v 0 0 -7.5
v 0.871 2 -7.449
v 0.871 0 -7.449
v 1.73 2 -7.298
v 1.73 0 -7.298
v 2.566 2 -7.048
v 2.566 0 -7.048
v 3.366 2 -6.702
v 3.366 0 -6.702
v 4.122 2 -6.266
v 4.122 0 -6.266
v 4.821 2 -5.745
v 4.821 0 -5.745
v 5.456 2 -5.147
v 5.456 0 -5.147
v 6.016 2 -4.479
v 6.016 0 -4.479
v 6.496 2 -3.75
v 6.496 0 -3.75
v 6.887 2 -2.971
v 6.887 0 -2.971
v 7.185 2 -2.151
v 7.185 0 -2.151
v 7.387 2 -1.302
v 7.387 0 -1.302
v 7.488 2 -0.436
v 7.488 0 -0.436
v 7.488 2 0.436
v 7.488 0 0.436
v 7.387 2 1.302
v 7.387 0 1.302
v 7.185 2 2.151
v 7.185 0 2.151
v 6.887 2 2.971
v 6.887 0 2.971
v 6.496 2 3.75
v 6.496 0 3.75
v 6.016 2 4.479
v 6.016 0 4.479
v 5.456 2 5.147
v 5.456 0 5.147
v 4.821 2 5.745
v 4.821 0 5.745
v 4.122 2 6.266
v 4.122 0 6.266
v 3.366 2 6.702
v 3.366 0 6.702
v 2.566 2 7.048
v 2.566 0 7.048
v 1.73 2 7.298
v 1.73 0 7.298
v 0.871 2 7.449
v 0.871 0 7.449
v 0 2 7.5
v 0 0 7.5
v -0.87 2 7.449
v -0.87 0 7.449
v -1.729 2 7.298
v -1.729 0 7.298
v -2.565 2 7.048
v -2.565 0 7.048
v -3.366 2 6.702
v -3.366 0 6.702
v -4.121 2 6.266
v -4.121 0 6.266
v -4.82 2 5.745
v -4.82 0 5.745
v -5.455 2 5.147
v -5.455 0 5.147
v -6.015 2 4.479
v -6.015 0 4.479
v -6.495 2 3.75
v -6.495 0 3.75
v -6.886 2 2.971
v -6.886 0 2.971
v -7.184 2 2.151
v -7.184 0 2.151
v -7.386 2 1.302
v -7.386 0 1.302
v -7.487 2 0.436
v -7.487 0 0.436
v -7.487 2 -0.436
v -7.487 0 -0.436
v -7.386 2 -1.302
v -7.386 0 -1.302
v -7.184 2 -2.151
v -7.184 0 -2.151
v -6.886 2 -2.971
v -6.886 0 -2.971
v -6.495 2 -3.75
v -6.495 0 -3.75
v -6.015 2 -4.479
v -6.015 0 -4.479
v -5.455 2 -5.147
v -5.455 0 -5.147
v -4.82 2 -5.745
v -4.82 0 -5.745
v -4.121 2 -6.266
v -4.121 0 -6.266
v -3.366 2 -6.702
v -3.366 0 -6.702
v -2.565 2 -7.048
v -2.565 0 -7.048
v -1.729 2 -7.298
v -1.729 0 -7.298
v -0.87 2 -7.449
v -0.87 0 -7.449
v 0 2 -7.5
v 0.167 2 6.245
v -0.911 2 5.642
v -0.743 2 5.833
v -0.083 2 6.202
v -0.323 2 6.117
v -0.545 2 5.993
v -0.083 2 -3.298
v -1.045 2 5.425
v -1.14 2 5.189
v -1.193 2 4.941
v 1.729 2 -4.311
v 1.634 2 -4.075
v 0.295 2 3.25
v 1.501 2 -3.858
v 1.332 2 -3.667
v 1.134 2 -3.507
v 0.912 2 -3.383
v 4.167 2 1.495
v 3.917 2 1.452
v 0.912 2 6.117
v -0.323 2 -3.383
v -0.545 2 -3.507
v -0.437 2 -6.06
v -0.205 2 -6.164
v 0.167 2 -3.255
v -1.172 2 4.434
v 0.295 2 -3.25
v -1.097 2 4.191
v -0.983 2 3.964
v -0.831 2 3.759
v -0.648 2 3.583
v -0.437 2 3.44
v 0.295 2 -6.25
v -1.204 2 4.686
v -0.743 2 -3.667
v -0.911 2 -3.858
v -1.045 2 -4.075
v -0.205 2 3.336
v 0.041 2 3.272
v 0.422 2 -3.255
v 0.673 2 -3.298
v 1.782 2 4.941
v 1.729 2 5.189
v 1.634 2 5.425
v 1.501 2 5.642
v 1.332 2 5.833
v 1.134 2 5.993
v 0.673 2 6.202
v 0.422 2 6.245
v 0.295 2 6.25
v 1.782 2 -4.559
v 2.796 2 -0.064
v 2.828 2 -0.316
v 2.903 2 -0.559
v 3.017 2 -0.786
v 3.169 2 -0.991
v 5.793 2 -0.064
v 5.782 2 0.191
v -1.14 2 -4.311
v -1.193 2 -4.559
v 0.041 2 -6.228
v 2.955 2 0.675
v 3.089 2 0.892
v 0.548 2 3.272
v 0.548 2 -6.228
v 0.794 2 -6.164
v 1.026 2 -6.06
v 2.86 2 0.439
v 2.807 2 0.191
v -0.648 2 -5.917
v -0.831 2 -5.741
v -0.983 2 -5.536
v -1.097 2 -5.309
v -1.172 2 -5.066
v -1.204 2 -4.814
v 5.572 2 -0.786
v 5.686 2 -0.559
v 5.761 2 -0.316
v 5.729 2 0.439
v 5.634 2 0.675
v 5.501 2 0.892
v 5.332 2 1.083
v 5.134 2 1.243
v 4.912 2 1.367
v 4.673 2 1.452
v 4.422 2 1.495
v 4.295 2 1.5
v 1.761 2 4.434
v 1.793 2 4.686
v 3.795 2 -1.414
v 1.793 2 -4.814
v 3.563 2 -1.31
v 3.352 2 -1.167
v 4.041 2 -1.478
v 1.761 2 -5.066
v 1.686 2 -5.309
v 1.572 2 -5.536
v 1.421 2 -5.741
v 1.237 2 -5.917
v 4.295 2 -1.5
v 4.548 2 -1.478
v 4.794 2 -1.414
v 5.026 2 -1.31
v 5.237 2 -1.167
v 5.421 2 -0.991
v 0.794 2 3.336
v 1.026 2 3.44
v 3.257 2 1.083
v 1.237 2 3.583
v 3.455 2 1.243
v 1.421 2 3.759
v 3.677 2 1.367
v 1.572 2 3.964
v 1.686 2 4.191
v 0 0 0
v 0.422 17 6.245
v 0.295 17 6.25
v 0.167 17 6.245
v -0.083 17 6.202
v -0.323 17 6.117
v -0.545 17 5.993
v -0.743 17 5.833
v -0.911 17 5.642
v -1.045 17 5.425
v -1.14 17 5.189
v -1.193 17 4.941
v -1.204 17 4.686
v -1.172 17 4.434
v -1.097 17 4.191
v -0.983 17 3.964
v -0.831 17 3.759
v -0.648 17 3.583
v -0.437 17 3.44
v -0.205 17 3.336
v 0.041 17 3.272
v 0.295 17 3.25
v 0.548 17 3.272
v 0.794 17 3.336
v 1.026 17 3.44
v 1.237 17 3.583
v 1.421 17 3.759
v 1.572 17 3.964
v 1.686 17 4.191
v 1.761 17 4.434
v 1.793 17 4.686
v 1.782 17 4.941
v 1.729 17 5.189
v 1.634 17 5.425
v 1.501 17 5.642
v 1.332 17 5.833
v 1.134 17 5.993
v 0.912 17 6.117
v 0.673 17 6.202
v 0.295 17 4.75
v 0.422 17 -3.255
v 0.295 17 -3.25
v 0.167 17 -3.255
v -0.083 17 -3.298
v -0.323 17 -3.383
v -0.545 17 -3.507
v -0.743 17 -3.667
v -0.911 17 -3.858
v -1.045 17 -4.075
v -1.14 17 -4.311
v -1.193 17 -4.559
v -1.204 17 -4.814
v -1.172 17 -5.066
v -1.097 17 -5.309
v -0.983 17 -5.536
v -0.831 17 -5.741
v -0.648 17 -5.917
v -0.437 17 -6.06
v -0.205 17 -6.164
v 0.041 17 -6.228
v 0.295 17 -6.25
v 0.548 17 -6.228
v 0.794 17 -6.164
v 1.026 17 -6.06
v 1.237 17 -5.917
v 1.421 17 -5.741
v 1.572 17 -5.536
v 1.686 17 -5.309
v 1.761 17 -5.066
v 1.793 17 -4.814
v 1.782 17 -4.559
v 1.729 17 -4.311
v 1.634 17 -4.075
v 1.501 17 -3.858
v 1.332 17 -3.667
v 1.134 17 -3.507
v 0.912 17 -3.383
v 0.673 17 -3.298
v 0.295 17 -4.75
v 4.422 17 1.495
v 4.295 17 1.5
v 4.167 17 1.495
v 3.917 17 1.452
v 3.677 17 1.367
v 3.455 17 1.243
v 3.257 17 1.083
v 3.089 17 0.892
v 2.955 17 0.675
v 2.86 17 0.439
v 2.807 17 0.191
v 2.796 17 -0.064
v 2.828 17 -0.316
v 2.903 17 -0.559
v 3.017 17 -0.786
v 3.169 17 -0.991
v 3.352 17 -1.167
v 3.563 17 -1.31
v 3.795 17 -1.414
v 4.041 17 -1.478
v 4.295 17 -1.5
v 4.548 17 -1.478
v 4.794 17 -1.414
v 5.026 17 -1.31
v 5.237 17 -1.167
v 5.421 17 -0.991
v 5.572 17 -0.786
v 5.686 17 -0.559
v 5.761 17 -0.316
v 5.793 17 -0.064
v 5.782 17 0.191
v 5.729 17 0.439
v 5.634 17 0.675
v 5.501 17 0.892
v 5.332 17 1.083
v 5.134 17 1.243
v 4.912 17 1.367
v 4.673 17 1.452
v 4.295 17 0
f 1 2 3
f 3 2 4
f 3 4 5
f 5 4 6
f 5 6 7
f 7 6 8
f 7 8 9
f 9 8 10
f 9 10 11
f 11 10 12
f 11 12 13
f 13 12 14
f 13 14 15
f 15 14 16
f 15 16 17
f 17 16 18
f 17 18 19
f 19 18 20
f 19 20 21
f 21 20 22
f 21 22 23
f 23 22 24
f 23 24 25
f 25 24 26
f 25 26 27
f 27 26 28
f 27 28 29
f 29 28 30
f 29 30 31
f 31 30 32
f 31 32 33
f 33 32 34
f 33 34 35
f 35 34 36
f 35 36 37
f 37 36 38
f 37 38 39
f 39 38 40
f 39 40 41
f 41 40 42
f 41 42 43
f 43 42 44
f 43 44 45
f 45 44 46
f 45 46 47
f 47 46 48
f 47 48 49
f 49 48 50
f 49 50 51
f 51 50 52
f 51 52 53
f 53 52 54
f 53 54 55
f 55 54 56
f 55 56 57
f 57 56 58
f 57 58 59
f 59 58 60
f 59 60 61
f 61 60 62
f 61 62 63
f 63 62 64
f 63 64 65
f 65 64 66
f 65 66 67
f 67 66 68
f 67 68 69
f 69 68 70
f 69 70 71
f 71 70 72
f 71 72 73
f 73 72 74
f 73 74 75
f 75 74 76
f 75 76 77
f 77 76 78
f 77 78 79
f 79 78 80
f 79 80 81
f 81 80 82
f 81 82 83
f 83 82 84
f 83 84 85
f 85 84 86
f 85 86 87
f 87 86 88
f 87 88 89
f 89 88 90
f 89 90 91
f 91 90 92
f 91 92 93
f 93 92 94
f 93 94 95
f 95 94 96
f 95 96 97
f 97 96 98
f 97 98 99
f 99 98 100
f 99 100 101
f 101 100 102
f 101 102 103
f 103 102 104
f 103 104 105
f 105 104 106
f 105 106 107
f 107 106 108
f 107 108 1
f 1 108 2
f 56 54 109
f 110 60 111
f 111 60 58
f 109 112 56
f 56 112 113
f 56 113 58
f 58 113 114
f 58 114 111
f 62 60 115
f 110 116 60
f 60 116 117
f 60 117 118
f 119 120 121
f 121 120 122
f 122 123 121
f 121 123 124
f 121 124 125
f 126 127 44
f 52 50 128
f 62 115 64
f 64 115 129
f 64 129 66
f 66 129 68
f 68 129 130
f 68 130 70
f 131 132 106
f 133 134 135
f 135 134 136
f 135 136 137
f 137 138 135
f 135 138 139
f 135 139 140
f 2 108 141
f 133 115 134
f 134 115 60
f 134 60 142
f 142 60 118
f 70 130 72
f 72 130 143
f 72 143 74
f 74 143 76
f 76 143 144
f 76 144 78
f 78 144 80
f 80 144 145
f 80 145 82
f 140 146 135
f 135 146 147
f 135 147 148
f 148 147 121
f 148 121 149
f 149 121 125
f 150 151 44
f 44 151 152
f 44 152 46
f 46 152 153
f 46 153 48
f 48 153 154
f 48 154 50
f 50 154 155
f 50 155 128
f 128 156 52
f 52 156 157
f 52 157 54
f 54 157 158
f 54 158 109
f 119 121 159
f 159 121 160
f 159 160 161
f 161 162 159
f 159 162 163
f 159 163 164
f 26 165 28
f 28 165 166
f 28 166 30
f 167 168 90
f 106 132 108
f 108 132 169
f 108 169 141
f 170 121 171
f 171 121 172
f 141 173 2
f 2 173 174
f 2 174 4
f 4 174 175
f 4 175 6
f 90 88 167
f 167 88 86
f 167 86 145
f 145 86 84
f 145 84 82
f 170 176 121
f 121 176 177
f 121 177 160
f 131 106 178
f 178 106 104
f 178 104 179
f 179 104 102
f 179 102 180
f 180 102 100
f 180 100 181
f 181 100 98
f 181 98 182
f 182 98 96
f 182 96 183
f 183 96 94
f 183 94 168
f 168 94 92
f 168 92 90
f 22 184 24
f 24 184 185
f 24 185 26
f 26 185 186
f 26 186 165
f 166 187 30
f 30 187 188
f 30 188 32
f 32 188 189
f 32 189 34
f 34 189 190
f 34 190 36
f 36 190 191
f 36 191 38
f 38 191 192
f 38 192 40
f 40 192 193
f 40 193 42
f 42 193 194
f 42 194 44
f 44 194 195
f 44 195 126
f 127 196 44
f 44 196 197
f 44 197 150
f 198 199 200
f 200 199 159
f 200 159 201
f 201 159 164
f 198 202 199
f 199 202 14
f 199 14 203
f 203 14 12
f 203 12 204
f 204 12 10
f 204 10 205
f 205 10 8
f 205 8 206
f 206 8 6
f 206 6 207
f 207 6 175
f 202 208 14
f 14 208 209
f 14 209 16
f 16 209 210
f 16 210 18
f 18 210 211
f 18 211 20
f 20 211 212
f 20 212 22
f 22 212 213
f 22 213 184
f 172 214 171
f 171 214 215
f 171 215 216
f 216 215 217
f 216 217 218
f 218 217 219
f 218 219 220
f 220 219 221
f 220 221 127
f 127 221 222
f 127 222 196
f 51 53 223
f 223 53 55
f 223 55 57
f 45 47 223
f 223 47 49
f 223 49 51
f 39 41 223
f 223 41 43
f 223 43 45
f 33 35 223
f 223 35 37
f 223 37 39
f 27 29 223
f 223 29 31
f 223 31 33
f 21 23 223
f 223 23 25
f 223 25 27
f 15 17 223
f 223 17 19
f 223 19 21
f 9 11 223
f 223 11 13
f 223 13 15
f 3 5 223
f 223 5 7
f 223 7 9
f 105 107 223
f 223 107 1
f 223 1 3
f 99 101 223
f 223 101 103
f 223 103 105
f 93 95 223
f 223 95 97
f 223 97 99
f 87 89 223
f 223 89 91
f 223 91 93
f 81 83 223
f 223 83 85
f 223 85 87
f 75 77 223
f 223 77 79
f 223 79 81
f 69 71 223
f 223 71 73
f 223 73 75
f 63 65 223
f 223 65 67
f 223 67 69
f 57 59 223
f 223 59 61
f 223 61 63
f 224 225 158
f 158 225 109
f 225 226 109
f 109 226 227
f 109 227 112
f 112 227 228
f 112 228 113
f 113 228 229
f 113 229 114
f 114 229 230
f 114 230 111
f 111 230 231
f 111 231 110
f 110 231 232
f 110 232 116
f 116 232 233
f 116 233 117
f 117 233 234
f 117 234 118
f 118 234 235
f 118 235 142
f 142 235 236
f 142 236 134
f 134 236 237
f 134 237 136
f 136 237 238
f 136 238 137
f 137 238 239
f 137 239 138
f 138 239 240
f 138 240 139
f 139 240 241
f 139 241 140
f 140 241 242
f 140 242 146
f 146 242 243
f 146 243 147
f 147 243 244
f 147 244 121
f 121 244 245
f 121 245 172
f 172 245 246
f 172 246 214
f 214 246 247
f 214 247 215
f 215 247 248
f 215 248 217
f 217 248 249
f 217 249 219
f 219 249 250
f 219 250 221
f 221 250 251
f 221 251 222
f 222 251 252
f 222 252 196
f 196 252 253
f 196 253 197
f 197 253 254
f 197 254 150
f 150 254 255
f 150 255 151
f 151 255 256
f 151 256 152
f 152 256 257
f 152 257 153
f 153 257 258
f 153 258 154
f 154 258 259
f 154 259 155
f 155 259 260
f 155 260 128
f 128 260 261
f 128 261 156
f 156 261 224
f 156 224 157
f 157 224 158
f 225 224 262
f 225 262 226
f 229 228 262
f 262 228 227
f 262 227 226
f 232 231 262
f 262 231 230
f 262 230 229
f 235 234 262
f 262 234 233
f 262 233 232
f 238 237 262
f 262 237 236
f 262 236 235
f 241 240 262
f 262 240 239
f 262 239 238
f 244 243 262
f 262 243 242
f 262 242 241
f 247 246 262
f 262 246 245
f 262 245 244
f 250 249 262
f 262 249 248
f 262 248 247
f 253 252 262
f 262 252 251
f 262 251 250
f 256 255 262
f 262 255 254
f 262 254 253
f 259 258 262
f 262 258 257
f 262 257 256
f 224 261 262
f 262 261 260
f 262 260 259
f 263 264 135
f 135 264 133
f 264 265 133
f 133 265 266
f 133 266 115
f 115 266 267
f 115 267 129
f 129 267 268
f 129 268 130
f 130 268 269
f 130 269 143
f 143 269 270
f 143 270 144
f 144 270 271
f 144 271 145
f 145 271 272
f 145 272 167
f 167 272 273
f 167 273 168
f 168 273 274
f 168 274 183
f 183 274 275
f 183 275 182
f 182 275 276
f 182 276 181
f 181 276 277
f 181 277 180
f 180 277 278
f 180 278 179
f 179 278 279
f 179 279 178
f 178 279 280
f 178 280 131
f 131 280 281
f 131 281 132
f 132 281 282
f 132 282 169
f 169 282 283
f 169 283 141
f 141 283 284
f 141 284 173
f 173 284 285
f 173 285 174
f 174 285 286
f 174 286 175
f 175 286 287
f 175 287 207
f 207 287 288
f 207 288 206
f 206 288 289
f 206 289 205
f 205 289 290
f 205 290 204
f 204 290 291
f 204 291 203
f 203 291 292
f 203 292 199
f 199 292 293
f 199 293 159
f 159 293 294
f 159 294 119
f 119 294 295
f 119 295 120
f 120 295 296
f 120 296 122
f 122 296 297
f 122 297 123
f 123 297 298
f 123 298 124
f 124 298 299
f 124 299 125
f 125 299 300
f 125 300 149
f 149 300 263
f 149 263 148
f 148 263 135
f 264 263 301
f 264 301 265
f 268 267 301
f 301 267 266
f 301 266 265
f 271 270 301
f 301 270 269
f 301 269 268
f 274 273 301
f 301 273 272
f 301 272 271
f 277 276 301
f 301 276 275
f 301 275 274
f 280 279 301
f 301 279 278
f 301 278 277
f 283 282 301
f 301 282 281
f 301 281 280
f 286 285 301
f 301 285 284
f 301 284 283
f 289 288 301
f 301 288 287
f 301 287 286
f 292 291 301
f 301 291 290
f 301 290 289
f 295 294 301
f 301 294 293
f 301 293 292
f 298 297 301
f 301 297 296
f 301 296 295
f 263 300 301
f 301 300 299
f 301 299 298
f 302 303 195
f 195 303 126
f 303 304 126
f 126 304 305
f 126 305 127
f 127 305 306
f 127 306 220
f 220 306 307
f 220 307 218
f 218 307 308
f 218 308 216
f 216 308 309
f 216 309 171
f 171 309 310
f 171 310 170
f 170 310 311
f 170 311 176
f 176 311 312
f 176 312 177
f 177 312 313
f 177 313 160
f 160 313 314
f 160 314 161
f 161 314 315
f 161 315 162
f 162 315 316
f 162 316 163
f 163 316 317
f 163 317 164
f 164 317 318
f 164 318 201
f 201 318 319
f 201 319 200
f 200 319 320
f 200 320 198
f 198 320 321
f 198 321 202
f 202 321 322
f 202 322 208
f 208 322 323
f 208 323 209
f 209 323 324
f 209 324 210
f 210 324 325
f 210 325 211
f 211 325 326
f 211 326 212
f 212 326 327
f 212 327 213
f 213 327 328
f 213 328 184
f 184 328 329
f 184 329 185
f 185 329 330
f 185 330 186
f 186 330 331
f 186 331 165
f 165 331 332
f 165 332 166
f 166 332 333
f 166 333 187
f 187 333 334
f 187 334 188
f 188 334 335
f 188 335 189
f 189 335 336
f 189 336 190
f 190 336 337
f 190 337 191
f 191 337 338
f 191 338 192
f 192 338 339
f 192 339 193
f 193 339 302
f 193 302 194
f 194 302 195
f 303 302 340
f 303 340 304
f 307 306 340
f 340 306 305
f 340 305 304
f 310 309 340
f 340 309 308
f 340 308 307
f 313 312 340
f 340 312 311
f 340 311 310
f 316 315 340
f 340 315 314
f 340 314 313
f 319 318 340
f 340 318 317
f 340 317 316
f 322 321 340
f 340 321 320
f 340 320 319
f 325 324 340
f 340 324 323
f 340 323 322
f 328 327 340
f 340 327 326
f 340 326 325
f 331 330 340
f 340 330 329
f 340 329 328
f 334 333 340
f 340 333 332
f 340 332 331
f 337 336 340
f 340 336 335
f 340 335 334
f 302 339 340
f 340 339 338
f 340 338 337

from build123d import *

# Parameters (mm, degrees)
SKETCH1_R           = 7.5
BOSS_EXTRUDE1_DEPTH = 2
SKETCH2_R           = 1.5
BOSS_EXTRUDE2_DEPTH = 15


with BuildPart() as part:
    # Sketch1 → Boss-Extrude1 (new body)
    with BuildSketch(Plane(origin=(0, 0, 0), x_dir=(1, 0, 0), z_dir=(0, 1, 0))):
        Circle(SKETCH1_R)
    extrude(amount=BOSS_EXTRUDE1_DEPTH)

    # Sketch2 → Boss-Extrude2 (add)
    with BuildSketch(Plane(origin=(0, 2, 0), x_dir=(1, 0, 0), z_dir=(0, 1, 0))):
        with Locations((0.294077072, -4.75)):
            Circle(SKETCH2_R)
        with Locations((0.294077072, 4.75)):
            Circle(SKETCH2_R)
        with Locations((4.294077072, 0)):
            Circle(SKETCH2_R)
    extrude(amount=BOSS_EXTRUDE2_DEPTH)


solid = part.part
